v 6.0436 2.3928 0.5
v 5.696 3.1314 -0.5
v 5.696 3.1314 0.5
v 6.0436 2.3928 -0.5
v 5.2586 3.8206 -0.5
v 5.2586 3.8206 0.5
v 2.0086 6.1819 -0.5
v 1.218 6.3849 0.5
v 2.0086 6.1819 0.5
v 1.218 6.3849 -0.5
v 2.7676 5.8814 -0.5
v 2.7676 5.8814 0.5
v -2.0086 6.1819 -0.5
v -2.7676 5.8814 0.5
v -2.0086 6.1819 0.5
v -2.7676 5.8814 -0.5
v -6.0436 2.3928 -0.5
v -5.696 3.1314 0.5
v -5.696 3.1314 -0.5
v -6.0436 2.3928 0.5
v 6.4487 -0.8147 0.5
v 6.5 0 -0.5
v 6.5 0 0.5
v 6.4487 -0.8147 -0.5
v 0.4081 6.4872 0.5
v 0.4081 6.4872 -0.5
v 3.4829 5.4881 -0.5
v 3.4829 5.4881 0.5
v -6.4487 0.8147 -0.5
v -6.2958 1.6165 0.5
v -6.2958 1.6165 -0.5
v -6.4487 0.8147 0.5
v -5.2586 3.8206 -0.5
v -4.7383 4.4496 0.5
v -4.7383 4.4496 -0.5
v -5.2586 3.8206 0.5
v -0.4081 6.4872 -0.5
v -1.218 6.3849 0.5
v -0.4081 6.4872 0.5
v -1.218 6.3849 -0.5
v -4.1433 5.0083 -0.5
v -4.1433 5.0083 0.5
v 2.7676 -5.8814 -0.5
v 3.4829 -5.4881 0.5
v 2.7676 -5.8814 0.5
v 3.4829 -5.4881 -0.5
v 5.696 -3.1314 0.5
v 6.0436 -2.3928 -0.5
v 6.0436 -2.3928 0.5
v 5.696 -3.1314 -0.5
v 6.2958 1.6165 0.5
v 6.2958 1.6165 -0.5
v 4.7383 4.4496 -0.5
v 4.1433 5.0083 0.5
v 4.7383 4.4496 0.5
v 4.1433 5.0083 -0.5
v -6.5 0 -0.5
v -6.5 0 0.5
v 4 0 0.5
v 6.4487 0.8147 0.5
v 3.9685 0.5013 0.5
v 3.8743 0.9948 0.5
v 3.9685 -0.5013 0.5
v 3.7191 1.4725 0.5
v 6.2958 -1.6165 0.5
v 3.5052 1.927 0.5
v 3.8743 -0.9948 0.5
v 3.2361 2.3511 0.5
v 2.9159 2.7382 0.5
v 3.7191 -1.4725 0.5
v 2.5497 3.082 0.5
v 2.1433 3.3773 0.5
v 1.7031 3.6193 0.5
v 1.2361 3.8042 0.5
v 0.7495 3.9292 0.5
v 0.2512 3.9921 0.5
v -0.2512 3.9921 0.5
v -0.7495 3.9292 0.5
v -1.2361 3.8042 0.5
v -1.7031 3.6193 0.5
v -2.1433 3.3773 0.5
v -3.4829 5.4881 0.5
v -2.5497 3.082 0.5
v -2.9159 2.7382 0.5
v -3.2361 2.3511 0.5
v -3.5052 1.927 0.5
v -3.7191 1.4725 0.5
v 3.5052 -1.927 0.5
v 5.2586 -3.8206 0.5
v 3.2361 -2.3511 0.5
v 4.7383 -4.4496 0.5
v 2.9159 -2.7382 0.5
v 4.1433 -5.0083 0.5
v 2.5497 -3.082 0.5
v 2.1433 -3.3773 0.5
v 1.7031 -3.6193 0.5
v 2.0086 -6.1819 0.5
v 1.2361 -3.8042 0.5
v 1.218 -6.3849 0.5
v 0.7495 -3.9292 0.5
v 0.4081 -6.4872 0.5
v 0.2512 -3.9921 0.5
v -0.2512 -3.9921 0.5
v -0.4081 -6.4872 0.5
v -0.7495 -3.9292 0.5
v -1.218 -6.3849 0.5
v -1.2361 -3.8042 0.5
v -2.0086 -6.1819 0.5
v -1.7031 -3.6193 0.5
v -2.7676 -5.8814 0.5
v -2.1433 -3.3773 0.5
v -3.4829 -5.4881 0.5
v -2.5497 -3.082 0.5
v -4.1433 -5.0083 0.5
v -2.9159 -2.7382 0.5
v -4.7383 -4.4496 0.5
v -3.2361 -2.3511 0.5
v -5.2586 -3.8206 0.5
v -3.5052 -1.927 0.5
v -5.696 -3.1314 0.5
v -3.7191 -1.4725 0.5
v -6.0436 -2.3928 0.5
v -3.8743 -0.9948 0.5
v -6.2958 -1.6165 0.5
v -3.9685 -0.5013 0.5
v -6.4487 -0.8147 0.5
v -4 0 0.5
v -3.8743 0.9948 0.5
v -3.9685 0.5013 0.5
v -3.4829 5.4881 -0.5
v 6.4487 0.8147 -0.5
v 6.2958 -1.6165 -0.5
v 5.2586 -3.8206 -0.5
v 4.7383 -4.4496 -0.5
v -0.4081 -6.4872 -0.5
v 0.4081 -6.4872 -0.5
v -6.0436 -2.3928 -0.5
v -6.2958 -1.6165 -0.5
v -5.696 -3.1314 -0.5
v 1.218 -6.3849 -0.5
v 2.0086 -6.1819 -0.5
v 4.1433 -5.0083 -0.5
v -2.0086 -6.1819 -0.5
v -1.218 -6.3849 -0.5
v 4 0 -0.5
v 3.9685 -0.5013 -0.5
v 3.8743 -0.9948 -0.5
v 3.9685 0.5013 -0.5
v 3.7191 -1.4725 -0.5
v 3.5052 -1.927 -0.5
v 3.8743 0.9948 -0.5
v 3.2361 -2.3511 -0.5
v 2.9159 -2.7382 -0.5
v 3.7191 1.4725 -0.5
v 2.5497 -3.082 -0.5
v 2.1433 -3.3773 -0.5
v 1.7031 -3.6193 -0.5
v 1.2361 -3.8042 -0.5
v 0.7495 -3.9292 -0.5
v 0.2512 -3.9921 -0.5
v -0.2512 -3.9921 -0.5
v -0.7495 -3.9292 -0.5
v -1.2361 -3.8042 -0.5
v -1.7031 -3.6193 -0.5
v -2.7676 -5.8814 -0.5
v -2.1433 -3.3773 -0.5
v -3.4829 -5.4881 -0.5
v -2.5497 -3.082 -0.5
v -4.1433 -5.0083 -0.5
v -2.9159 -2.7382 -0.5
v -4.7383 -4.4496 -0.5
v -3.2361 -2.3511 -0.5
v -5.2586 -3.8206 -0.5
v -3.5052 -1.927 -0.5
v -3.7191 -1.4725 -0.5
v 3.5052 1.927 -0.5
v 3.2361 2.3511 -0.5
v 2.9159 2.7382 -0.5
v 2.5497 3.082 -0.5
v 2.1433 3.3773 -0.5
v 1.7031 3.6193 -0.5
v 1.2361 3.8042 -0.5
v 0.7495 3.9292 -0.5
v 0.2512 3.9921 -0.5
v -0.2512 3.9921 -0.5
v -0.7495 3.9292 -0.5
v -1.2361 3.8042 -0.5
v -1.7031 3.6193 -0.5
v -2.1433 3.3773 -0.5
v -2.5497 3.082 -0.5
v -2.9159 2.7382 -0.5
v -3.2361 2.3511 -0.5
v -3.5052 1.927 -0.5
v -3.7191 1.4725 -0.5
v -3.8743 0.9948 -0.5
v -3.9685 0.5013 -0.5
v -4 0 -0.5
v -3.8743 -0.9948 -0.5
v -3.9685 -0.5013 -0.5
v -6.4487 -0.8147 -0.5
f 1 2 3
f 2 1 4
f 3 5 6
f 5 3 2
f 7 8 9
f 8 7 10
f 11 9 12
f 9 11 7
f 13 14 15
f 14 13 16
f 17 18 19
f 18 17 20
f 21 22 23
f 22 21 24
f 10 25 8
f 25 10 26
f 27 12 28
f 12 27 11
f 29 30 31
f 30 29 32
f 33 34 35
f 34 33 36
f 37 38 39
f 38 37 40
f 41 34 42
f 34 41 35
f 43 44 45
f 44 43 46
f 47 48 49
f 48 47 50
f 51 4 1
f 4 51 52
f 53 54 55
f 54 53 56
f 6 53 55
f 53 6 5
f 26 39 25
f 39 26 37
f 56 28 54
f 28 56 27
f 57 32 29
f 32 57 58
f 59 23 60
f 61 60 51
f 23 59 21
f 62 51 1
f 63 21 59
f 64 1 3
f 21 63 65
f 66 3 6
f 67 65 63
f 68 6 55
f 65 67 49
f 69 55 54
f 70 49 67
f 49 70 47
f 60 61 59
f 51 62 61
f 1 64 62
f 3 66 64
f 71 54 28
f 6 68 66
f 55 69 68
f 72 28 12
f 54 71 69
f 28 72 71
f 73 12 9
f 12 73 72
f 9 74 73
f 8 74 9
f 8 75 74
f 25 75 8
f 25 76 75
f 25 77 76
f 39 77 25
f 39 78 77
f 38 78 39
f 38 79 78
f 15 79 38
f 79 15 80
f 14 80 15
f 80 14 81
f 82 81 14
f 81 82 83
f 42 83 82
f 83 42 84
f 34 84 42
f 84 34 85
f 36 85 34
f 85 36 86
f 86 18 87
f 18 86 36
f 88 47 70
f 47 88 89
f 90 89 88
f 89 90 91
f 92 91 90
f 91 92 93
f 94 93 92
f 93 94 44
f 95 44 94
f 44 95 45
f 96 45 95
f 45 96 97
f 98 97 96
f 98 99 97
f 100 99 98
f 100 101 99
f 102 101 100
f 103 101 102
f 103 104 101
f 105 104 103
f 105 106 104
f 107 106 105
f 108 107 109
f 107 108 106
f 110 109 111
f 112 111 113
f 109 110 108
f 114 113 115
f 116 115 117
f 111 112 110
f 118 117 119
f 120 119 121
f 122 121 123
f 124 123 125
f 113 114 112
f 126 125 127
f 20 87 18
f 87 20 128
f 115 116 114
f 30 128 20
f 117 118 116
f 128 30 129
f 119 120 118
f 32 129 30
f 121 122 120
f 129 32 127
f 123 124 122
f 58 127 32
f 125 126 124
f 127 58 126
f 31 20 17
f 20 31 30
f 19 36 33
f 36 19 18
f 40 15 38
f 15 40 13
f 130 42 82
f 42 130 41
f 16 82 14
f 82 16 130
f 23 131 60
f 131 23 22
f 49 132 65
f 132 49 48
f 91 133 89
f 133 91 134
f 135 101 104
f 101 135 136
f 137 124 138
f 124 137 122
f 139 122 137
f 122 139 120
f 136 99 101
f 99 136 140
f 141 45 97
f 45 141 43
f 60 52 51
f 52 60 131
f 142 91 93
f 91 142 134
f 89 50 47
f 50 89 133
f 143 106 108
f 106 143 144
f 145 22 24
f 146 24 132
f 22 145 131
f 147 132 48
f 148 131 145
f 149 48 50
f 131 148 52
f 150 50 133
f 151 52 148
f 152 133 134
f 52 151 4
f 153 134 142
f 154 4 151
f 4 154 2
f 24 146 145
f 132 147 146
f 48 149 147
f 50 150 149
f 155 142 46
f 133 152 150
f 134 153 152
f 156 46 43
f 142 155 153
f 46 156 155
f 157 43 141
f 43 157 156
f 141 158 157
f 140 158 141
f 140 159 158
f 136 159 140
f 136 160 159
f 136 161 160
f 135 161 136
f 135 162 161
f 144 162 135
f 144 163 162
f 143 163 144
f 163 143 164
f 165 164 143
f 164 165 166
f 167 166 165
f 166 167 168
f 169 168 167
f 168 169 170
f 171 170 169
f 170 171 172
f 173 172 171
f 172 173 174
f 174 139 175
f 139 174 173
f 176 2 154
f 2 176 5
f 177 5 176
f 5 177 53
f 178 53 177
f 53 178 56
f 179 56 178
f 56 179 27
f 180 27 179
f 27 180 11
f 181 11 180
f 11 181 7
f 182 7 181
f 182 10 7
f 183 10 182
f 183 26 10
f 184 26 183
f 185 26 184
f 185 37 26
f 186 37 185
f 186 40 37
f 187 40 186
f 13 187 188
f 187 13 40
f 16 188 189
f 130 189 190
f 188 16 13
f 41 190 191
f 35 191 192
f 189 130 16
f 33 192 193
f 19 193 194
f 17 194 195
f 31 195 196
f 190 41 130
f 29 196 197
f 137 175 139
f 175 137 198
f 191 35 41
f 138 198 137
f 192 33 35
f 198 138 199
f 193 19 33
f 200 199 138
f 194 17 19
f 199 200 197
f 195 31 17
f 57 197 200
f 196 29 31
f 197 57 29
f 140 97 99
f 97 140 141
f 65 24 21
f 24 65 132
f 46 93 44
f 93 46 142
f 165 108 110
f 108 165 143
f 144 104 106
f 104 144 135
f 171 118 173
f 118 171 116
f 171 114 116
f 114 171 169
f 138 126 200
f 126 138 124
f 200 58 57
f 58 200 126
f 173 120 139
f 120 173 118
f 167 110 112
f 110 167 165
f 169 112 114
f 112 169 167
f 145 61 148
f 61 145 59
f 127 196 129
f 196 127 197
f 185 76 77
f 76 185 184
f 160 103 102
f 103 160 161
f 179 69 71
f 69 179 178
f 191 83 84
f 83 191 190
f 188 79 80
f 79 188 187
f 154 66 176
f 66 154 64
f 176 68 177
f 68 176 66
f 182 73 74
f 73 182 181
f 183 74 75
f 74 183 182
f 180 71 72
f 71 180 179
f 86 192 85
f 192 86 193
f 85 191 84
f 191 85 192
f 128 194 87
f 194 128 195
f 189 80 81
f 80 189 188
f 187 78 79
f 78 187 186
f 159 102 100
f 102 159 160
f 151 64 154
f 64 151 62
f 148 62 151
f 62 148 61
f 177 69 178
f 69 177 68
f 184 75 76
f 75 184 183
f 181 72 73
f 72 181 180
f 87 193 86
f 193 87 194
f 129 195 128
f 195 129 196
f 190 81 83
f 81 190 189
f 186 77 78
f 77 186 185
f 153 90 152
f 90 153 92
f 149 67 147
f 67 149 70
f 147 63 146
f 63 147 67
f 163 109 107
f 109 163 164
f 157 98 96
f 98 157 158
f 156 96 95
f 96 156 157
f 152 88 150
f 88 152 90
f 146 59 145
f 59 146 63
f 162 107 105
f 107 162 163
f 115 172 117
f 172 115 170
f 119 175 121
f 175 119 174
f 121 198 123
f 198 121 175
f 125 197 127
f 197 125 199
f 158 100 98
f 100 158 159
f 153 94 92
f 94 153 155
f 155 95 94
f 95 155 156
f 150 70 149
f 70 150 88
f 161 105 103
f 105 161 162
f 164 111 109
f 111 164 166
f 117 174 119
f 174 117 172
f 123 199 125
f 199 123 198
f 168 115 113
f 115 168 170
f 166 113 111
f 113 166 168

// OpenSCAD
$fn = 50;


difference() {
	union() {
		translate(v = [0, 0, -0.5000000000]) {
			cylinder(h = 1, r = 6.5000000000);
		}
	}
	union() {
		translate(v = [0, 0, -100.0000000000]) {
			cylinder(h = 200, r = 4);
		}
	}
}
